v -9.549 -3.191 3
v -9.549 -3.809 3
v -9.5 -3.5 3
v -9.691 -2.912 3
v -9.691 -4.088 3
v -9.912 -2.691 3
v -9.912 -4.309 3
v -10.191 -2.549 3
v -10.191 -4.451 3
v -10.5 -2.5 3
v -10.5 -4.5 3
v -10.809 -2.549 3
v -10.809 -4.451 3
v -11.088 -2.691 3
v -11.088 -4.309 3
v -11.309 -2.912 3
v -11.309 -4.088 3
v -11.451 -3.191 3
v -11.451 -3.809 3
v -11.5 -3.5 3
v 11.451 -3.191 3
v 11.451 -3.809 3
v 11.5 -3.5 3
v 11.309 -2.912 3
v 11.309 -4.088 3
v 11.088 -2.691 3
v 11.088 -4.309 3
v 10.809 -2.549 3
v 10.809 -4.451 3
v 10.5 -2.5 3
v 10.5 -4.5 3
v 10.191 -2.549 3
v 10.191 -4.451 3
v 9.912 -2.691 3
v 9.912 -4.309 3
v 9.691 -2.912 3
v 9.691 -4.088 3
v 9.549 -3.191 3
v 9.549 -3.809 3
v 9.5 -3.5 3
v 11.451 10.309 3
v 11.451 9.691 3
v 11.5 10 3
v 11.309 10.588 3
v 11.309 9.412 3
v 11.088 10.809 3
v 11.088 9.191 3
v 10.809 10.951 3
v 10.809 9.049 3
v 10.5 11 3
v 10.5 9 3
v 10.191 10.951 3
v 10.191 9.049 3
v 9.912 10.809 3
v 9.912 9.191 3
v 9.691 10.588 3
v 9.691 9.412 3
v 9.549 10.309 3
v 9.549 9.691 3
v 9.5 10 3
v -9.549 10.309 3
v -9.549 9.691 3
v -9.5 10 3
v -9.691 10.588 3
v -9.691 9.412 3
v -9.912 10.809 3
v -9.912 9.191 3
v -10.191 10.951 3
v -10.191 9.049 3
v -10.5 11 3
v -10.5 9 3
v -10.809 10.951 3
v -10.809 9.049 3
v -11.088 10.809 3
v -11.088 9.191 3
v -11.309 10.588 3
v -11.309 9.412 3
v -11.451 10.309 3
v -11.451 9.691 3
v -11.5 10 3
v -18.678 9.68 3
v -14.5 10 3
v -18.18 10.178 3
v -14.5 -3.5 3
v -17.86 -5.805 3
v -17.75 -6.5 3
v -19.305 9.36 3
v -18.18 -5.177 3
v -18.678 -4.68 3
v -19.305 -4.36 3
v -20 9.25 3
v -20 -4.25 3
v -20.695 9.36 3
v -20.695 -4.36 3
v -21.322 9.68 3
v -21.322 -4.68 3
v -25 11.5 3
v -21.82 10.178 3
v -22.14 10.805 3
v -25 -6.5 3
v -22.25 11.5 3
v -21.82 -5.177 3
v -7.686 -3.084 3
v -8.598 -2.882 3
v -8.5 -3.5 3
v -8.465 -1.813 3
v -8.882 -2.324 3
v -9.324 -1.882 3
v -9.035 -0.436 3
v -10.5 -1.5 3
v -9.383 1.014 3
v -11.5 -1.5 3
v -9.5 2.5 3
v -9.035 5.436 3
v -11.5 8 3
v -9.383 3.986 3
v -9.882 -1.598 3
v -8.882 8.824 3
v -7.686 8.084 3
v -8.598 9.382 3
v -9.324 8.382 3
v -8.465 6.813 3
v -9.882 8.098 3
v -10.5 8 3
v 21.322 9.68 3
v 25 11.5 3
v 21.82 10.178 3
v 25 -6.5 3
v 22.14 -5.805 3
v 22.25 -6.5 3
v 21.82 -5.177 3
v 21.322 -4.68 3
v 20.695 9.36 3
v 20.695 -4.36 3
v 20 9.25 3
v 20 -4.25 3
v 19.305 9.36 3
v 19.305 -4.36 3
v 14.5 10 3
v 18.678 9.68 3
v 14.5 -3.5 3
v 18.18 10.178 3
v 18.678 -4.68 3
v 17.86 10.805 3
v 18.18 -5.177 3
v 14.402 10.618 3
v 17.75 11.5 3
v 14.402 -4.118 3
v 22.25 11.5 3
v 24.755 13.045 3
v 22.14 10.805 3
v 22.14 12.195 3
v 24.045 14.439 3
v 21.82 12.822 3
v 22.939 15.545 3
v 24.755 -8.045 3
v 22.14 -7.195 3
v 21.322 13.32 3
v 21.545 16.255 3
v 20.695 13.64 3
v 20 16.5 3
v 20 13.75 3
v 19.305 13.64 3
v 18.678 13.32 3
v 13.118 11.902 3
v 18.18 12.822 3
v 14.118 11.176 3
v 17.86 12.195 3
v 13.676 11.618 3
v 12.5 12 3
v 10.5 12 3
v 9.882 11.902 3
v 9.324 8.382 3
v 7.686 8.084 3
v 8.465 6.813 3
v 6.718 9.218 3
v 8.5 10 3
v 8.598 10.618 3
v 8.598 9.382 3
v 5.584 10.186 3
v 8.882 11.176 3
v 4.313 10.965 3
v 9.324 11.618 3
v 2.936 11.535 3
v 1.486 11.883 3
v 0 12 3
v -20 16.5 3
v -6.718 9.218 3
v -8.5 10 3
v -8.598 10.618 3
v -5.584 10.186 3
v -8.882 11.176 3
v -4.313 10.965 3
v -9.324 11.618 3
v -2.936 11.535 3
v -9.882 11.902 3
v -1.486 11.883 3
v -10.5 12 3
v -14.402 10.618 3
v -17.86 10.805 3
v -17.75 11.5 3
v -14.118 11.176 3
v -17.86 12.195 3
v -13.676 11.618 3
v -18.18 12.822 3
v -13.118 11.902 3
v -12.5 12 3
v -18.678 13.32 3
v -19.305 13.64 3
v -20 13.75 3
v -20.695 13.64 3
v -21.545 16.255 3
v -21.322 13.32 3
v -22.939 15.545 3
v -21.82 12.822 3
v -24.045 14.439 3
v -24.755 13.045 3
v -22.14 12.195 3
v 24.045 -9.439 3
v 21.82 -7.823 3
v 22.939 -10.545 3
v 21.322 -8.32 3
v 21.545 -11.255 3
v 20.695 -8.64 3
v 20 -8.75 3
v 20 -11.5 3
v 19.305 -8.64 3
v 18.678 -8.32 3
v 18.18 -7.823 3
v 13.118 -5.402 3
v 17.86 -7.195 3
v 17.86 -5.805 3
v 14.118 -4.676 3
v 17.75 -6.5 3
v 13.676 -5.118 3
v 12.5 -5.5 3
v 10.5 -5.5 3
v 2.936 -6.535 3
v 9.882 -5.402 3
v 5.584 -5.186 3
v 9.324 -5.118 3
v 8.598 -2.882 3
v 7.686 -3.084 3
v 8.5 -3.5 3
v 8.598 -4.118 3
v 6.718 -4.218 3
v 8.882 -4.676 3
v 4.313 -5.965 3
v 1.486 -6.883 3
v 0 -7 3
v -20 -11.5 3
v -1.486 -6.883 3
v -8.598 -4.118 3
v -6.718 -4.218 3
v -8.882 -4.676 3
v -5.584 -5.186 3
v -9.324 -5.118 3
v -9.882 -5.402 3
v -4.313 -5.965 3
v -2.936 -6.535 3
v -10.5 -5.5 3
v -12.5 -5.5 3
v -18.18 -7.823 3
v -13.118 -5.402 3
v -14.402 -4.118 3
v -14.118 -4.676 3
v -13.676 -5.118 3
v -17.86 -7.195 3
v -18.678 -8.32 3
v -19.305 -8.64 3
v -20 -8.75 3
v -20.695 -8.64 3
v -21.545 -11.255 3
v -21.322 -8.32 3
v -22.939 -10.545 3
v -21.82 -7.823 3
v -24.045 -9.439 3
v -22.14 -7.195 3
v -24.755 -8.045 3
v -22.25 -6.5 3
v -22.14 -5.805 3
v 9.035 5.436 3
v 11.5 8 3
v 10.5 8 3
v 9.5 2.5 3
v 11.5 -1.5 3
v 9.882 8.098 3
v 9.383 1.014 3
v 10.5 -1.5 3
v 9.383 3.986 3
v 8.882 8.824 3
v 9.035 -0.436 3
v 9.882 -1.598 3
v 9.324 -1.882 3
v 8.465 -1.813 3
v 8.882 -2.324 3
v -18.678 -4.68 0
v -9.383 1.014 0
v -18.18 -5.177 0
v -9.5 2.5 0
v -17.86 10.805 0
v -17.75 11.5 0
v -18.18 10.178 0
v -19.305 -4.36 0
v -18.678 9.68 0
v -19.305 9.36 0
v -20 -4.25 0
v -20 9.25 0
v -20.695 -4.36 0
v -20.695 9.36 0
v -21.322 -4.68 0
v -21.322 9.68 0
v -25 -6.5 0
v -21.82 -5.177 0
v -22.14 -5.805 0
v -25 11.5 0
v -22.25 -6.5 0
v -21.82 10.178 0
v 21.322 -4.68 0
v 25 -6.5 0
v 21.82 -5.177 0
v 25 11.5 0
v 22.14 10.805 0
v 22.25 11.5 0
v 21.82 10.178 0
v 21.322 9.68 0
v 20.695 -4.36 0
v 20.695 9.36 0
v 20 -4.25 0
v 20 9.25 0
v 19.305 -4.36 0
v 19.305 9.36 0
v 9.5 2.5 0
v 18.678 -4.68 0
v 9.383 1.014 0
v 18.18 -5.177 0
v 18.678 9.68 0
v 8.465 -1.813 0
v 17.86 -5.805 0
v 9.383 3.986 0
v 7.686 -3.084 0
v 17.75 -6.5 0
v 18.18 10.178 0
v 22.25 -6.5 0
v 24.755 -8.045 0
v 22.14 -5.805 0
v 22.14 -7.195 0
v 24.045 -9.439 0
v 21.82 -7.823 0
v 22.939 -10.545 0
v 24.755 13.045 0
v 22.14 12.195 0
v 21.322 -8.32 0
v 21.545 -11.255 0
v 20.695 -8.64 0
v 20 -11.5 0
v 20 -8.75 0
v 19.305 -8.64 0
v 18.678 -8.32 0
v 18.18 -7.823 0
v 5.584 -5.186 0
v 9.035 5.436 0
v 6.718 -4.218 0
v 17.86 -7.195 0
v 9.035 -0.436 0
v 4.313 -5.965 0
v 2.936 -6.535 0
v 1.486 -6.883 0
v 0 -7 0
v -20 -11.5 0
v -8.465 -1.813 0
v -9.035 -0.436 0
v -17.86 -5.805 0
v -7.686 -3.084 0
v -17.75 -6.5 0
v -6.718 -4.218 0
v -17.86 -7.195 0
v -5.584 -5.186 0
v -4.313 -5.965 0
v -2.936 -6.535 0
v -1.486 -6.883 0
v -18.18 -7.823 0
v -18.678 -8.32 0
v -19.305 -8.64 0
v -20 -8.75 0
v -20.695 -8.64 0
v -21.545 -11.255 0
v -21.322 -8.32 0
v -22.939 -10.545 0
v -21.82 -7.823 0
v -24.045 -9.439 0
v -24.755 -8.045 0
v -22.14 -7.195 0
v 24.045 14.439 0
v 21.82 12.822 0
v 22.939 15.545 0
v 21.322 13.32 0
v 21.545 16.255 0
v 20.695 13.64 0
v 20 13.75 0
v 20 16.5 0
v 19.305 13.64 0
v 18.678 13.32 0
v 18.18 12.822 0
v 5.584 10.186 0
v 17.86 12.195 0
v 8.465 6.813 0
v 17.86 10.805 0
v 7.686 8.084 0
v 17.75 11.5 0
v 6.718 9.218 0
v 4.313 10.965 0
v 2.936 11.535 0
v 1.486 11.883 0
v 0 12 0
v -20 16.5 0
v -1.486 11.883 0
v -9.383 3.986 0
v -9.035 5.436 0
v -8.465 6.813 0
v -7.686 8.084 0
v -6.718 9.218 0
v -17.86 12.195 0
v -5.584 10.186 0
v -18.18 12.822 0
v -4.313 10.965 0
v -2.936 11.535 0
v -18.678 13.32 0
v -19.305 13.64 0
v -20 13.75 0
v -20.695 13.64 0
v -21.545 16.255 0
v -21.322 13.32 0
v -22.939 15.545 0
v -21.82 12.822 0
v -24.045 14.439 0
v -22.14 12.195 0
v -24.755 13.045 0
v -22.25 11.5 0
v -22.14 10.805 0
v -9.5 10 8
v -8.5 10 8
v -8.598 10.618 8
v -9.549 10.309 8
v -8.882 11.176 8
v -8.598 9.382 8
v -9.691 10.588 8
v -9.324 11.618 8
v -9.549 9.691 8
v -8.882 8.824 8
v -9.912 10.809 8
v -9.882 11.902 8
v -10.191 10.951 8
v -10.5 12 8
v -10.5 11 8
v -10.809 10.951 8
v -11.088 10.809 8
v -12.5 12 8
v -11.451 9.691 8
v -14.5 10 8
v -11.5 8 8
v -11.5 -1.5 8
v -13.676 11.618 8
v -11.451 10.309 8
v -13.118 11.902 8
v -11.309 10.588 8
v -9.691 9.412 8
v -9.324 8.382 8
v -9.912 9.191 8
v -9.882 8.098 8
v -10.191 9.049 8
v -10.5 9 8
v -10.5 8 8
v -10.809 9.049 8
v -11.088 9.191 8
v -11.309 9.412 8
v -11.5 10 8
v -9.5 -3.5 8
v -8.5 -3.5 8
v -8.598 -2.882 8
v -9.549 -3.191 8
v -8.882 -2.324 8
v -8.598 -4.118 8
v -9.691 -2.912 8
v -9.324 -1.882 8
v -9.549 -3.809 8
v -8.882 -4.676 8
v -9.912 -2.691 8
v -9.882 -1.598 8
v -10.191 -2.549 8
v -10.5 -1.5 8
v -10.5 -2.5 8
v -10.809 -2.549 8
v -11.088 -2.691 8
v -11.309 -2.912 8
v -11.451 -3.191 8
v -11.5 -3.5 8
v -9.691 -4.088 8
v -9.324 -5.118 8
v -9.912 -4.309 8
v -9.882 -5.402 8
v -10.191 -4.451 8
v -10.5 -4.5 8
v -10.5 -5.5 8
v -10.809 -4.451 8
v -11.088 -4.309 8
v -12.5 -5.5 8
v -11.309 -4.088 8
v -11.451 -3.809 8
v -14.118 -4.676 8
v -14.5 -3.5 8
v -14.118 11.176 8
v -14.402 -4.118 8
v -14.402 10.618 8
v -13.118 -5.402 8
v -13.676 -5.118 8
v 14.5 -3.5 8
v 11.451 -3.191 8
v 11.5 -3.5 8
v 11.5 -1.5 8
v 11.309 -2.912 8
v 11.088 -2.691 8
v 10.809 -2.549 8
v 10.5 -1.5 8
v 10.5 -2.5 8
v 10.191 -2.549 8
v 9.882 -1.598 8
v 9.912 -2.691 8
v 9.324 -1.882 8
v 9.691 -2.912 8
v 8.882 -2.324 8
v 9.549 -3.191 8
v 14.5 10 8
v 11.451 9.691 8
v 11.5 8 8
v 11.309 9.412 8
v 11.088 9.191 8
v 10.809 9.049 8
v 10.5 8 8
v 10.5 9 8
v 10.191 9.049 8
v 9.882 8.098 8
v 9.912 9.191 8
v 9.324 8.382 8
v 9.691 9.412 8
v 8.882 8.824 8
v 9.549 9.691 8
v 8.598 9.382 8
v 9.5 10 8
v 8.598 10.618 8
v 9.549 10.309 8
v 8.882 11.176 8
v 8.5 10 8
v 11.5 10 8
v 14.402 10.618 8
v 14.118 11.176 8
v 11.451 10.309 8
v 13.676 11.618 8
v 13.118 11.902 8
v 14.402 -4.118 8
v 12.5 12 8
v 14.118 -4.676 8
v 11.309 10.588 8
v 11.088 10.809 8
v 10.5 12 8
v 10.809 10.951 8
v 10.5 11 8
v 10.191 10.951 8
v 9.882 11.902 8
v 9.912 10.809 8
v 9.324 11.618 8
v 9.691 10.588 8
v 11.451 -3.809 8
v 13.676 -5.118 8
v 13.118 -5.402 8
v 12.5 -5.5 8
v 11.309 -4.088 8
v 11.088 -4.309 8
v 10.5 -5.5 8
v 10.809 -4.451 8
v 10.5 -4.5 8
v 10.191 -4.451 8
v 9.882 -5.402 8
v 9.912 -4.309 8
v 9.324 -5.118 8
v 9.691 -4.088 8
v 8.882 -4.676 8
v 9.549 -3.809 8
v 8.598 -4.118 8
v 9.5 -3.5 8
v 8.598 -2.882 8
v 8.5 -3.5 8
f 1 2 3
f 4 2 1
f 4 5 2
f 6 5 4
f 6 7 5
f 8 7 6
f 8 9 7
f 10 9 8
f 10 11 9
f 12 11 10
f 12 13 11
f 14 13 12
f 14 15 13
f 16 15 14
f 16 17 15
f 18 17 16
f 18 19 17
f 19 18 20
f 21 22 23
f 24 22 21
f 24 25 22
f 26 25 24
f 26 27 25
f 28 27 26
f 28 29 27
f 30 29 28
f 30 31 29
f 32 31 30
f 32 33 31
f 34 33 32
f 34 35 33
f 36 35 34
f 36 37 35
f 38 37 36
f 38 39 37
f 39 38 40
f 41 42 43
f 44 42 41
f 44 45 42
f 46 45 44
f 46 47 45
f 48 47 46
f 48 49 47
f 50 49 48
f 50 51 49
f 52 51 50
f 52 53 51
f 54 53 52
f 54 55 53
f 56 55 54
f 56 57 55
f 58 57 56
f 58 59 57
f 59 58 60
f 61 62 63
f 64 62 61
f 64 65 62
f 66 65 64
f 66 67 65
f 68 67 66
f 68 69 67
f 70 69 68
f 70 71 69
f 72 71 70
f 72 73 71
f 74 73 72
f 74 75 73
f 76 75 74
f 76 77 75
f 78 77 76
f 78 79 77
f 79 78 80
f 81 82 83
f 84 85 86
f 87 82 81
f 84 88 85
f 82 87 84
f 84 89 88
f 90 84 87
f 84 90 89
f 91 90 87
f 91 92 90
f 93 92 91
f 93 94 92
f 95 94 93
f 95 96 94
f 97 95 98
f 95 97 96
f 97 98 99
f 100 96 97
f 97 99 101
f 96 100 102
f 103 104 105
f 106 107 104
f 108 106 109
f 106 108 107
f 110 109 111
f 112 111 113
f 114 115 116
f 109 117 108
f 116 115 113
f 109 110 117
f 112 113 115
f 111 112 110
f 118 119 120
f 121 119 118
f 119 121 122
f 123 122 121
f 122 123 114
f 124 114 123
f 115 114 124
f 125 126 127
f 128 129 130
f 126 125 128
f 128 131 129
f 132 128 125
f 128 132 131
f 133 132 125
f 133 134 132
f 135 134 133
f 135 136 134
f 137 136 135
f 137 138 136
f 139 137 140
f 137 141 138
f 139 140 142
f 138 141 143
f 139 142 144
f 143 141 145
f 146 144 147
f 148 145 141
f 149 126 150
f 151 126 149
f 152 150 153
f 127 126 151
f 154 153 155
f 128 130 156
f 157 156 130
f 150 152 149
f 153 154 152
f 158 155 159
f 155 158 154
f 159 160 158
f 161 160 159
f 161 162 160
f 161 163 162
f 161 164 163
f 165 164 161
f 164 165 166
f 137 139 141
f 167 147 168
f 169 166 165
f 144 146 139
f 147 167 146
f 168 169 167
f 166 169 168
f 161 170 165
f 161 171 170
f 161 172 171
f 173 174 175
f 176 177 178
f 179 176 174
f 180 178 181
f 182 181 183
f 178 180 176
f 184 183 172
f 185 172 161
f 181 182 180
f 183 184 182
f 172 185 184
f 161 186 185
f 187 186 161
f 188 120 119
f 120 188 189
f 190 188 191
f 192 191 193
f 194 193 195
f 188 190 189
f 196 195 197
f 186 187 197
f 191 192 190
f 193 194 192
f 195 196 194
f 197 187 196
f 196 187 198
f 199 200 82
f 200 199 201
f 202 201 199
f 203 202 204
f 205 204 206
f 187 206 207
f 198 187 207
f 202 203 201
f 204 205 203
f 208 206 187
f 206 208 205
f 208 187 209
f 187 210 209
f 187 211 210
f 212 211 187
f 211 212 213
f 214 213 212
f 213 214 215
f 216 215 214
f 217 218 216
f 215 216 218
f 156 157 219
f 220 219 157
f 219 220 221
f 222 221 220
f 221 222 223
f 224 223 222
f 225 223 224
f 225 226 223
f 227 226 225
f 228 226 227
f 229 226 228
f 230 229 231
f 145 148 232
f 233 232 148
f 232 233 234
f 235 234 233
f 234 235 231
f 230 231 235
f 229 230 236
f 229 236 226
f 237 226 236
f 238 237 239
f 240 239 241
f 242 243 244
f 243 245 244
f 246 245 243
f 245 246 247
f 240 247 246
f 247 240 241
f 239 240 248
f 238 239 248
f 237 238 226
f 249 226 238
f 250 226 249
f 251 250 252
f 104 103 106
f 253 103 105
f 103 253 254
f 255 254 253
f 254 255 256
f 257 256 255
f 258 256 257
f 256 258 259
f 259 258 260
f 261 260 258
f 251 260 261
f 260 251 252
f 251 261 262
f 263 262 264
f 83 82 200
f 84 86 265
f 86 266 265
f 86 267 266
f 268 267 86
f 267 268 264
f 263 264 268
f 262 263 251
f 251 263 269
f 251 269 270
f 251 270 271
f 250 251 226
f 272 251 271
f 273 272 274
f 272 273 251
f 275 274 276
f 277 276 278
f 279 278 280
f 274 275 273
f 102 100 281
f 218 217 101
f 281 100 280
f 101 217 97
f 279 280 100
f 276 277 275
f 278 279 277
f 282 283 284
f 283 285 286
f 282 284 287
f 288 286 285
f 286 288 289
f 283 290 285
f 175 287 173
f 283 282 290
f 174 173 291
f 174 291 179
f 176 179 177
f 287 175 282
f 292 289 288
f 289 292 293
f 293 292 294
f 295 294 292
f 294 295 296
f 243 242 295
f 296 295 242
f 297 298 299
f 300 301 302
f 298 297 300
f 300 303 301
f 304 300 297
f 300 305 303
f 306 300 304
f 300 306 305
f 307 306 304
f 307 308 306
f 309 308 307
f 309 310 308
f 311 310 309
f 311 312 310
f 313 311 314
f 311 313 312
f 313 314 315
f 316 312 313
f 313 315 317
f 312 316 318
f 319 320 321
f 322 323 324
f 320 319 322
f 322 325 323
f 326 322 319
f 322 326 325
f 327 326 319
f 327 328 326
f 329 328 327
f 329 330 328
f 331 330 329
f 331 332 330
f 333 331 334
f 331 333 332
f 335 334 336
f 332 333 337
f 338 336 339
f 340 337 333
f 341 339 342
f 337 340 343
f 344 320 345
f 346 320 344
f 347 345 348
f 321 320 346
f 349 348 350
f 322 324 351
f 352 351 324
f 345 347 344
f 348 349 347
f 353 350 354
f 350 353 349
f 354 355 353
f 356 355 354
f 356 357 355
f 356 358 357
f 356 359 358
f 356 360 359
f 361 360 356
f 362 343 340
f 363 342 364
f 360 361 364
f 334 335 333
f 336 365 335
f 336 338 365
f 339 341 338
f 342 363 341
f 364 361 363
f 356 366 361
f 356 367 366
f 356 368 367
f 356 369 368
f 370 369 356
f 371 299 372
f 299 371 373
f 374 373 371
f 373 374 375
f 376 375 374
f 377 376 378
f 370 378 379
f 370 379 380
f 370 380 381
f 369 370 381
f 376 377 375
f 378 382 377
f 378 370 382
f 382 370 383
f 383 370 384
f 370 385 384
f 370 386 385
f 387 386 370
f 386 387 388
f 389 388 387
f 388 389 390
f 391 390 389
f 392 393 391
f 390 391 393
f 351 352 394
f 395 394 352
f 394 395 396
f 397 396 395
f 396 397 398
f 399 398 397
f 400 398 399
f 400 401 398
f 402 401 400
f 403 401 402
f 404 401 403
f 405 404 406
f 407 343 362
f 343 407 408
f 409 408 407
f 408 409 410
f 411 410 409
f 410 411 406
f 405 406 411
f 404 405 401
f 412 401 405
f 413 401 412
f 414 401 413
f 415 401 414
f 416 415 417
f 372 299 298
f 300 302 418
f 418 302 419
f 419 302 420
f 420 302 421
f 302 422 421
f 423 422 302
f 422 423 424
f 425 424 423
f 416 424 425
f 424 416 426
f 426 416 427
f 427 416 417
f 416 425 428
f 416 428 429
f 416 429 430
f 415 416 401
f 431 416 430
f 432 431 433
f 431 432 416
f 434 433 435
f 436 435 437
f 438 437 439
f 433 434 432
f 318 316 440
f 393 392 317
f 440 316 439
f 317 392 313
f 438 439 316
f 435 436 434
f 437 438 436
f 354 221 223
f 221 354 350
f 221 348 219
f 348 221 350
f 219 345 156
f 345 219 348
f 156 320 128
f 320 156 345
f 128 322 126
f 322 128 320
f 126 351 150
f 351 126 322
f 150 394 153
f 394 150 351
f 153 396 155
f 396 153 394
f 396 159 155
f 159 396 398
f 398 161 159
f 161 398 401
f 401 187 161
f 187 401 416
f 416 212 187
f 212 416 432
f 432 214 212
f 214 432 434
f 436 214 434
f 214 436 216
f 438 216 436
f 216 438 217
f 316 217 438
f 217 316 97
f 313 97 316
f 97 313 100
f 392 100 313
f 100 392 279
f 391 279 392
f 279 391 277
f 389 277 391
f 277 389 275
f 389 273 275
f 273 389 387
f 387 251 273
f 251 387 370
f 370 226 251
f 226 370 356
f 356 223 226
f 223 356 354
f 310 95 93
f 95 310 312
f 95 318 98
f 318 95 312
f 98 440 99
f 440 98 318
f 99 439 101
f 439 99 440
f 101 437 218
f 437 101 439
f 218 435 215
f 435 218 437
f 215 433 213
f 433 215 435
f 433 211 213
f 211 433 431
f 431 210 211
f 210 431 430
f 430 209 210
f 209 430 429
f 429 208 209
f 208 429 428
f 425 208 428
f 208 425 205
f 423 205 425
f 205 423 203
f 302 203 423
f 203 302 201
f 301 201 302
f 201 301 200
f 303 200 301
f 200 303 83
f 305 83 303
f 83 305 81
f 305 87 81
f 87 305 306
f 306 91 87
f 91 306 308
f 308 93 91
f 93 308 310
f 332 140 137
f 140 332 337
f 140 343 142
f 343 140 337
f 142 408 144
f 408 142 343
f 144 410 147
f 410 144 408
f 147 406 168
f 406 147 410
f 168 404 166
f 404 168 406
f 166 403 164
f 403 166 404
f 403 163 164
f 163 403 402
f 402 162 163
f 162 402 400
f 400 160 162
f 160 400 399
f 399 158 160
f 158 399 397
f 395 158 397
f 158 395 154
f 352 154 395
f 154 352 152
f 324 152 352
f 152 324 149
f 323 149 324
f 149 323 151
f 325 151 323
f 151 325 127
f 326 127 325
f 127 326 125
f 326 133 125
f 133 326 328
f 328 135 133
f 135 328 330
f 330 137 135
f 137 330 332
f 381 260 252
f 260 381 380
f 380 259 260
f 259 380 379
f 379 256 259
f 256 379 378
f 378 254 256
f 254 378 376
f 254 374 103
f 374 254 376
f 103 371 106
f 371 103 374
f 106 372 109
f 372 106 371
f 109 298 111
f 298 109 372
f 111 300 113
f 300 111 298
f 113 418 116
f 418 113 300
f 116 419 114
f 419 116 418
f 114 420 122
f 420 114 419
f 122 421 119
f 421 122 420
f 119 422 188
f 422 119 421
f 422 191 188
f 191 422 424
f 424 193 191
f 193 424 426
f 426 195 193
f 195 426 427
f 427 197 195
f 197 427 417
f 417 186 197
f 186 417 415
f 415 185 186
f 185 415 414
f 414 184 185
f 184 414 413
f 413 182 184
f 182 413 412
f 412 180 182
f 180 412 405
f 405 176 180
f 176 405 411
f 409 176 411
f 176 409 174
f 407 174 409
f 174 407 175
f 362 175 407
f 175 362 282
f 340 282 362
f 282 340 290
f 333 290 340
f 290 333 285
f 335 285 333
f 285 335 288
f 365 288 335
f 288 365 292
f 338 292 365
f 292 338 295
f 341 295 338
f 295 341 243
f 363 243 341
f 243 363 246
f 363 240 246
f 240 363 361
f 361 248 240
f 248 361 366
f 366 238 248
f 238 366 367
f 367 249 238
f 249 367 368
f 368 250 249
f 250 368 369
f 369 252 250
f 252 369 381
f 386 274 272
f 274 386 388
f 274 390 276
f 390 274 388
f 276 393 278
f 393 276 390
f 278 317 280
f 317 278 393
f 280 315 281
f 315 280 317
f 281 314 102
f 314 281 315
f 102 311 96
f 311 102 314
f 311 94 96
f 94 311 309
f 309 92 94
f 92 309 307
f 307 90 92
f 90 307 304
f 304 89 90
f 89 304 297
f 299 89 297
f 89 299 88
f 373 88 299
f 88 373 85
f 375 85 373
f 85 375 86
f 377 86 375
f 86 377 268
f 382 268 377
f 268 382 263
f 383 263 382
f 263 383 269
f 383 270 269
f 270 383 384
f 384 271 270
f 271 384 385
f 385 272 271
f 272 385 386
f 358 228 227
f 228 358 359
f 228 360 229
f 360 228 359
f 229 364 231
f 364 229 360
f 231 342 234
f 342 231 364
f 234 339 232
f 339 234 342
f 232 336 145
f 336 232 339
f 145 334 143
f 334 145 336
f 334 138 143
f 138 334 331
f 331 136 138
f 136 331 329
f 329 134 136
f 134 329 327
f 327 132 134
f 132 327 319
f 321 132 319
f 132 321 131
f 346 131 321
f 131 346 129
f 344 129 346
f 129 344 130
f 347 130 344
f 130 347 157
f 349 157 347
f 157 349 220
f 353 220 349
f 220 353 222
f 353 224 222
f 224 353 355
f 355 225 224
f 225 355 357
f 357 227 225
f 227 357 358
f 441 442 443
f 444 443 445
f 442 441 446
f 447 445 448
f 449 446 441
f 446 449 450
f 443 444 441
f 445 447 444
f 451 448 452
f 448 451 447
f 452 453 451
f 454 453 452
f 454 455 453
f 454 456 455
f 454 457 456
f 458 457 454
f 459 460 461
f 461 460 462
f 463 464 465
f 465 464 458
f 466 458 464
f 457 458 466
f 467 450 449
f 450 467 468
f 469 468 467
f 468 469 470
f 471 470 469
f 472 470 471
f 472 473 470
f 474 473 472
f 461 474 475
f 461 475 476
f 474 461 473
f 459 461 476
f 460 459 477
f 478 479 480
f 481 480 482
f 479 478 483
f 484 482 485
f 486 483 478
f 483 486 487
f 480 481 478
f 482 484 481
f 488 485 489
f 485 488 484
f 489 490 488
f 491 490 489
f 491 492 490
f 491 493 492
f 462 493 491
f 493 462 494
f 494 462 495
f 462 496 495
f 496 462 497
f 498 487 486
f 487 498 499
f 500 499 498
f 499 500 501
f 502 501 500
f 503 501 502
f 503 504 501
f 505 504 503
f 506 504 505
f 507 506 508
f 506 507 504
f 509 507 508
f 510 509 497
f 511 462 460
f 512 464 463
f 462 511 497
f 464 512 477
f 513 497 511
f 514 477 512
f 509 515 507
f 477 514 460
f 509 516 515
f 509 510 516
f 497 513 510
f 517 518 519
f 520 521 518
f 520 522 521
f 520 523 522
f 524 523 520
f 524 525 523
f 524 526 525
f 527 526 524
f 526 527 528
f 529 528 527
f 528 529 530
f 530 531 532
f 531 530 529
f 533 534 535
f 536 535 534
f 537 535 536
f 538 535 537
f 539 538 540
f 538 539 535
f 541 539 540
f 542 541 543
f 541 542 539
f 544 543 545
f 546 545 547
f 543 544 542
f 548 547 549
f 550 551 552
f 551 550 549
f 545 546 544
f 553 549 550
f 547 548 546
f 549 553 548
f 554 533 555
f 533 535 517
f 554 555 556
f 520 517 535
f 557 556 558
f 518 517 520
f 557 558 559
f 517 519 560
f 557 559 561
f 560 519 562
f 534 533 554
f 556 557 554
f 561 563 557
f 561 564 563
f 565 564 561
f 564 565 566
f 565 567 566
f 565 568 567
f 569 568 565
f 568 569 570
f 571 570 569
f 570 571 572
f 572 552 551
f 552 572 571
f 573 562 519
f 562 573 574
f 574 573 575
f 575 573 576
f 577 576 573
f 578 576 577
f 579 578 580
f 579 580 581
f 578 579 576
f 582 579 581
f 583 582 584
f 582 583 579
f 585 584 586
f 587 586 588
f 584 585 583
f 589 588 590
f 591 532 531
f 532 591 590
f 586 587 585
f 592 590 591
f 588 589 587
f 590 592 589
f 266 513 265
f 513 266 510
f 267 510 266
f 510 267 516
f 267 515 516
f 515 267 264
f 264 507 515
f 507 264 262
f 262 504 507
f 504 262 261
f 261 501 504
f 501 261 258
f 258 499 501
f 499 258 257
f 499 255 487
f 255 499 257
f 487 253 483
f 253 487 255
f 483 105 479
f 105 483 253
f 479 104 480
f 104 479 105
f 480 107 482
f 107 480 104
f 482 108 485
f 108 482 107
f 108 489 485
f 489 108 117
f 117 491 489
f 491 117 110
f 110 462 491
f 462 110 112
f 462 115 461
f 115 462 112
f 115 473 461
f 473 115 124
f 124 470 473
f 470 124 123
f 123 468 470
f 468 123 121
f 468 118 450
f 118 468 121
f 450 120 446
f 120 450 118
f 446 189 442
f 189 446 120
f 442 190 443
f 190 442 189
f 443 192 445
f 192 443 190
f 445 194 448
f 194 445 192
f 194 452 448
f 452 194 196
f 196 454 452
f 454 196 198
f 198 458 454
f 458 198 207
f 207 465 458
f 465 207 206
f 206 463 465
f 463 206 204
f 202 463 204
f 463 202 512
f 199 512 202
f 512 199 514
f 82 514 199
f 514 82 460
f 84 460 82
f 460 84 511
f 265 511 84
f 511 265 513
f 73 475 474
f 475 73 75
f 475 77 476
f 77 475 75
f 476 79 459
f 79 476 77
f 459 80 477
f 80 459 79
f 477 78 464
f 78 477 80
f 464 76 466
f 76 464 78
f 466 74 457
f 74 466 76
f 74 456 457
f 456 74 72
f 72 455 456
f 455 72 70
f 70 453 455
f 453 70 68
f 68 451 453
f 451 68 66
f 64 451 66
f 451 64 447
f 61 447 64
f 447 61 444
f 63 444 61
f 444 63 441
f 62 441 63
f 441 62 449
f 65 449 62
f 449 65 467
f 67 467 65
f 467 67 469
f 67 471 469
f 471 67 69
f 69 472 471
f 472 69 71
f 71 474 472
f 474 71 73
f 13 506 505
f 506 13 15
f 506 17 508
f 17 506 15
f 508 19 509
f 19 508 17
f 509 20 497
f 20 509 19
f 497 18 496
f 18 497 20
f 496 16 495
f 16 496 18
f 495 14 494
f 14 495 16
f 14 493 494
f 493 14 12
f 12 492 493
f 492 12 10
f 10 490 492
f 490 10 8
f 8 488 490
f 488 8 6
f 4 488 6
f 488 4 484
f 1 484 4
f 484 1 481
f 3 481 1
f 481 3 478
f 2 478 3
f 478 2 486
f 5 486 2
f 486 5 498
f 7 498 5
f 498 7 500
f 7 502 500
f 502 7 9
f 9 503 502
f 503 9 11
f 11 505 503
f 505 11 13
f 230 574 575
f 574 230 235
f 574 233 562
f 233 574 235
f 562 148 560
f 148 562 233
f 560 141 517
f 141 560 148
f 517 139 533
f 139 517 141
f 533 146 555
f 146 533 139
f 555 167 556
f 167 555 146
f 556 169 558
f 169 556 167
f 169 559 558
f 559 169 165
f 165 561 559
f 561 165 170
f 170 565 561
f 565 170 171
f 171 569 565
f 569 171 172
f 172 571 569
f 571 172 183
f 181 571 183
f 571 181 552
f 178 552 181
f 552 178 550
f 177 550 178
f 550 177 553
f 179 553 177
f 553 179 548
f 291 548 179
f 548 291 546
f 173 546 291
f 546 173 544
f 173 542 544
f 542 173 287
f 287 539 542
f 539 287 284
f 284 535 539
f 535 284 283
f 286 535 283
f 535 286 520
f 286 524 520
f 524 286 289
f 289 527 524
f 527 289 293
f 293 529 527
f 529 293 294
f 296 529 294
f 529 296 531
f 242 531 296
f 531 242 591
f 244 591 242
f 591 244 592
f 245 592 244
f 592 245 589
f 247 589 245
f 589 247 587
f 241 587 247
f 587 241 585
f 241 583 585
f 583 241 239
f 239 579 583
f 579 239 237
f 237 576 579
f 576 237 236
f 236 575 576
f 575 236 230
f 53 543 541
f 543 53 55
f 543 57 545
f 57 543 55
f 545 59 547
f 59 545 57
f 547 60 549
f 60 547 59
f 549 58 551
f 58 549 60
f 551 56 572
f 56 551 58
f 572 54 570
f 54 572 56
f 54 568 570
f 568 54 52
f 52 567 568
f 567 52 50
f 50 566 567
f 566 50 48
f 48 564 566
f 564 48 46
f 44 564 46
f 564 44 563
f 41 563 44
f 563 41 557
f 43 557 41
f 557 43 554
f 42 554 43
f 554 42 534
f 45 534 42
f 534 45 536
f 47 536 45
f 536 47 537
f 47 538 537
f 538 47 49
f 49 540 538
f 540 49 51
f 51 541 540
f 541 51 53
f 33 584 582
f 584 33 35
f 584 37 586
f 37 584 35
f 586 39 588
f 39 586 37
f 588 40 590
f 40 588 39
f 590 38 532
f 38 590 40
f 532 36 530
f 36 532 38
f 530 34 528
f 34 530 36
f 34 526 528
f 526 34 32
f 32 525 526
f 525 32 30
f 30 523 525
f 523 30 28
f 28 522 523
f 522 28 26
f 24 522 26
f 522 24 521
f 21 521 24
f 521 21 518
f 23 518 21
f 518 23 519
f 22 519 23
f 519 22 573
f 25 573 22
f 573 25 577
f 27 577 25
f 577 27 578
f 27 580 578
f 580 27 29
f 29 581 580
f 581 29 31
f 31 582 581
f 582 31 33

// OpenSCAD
cameraBoardFromBoxWall = 10;

mountDepth = 3;

headerX = 22;
headerY = 6;
headerZ = 3;

cameraBoardX = 25;
cameraBoardY = 24;
cameraBoardZ = 1;
cameraBoardHoleDiameter = 2;

cameraModuleOffsetY = 2.5;

cameraLensDiameter = 14;
cameraLensHeight = 20;

translate([0,0,( cameraBoardFromBoxWall  - 1 )])
mirror([0,0,1]) {

  %union() {
    linear_extrude( cameraBoardZ ) {
      difference() {
        square([cameraBoardX,cameraBoardY], center = true);

        union() {
          for( i = [-1,1]) {

            /* upper holes */
            translate([ ( cameraBoardX/2 - cameraBoardHoleDiameter/2 - 1 ) * i, ( cameraBoardY/2 - cameraBoardHoleDiameter/2 - 1 ) ])
            circle( d = cameraBoardHoleDiameter, center = true, $fn = 20 );

            /* lower holes */
            translate([ ( cameraBoardX/2 - cameraBoardHoleDiameter/2 - 1 ) * i, ( cameraBoardY/2 - cameraBoardHoleDiameter/2 - 7.5 ) * -1 ])
            circle( d = cameraBoardHoleDiameter, center = true, $fn = 20 );
          }
        }

      }
    }

    /* camera module */
    cameraLowerSquare = 4;
    translate([0,(-13.25/2 + cameraBoardY/2 - cameraModuleOffsetY),cameraBoardZ]) {

      /* lower camera module with screw mounts */
      linear_extrude( cameraLowerSquare )
      union() {
        square(13.25, center = true);
        hull() {
          for( i = [-1,1]) {
            translate([i*18/2,0,0])
            circle( d = 4, $fn = 20 );
          }
        }
      }

      /* round portion of upper camera module */
      translate([0,0,cameraLowerSquare]) {
        rotate_extrude( angle = 360, $fn = 40 ) {
          square([cameraLensDiameter/2,4]);
          translate([0,4,0])
          square([12/2,4]);
          translate([0,8,0])
          square([cameraLensDiameter/2,4]);
        }
      }

    }

    /* screw heads on bottom of camera board */
    translate([0,(-13.25/2 + cameraBoardY/2 - cameraModuleOffsetY),-1])
    linear_extrude( 1 )
    for( i = [-1,1]) {
      translate([i*18/2,0,0])
      circle( d = 3, $fn = 20 );
    }

    /* cable header */
    translate([0,-(cameraBoardY/2-headerY/2),cameraBoardZ+headerZ/2 ])
    cube([headerX,headerY,headerZ], center = true);

    /* box to mount to with camera sticking through */
    translate([0,cameraModuleOffsetY, cameraBoardFromBoxWall-1])
    linear_extrude( 3 ) {
      difference() {
        square(size=[cameraBoardX*2,cameraBoardY*2], center=true);
        circle(d=19, center = true, $fn = 20 );
      }
    }

  }

  mountWidth = 3;
  mountLength = 17.5;
  translate([0,0,cameraBoardZ])
  union() {
    translate([0,cameraModuleOffsetY, ( cameraBoardFromBoxWall - cameraBoardZ - mountDepth - 1 )])
    linear_extrude( mountDepth ) {
      difference() {
        union() {
          /*square(size=[cameraBoardX*2,cameraBoardY + cameraModuleOffsetY*2], center=true);*/

          hull() {
            for( t = [-1,1]) {
              for( i = [-1,1]) {
                translate([i*20,( (cameraBoardY + cameraModuleOffsetY*2)/2 - 5.5 )*t,0])
                circle( d = 10, $fn = 20, center = true );
              }
            }
          }

        }

        union() {
          circle(d=19, center = true, $fn = 40 );

          for( t = [-1,1]) {
            for( i = [-1,1]) {
              translate([i*20,( (cameraBoardY + cameraModuleOffsetY*2)/2 - 5.5 )*t,0])
              circle( d = 4.5, $fn = 20, center = true );
            }
          }

        }
      }
    }

    linear_extrude( cameraBoardFromBoxWall - cameraBoardZ * 2 - mountDepth )
    union() {
      for( i = [-1,1] ) {
        translate([ i * ( cameraBoardX/2 - 1 + mountWidth/2),( cameraBoardY/2 - mountLength/2 ),0])
        square([mountWidth,mountLength - cameraBoardHoleDiameter*2 ], center=true);
      }

      union() {
        for( i = [-1,1]) {

          /* upper holes */
          translate([ ( cameraBoardX/2 - cameraBoardHoleDiameter/2 - 1 ) * i, ( cameraBoardY/2 - cameraBoardHoleDiameter/2 - 1 ) ]) {
            difference() {
              hull() {
                circle( d = cameraBoardHoleDiameter *2, center = true, $fn = 20 );
                translate([i*2,0,0])
                circle( d = cameraBoardHoleDiameter *2, center = true, $fn = 20 );
              }
              circle( d = cameraBoardHoleDiameter, center = true, $fn = 20 );
            }
          }

          /* lower holes */
          translate([ ( cameraBoardX/2 - cameraBoardHoleDiameter/2 - 1 ) * i, ( cameraBoardY/2 - cameraBoardHoleDiameter/2 - 7.5 ) * -1 ]) {
            difference() {
              hull() {
                circle( d = cameraBoardHoleDiameter *2, center = true, $fn = 20 );
                translate([i*2,0,0])
                circle( d = cameraBoardHoleDiameter *2, center = true, $fn = 20 );
              }
              circle( d = cameraBoardHoleDiameter, center = true, $fn = 20 );
            }
          }
        }
      }

    }
  }

} /* end mirror */
